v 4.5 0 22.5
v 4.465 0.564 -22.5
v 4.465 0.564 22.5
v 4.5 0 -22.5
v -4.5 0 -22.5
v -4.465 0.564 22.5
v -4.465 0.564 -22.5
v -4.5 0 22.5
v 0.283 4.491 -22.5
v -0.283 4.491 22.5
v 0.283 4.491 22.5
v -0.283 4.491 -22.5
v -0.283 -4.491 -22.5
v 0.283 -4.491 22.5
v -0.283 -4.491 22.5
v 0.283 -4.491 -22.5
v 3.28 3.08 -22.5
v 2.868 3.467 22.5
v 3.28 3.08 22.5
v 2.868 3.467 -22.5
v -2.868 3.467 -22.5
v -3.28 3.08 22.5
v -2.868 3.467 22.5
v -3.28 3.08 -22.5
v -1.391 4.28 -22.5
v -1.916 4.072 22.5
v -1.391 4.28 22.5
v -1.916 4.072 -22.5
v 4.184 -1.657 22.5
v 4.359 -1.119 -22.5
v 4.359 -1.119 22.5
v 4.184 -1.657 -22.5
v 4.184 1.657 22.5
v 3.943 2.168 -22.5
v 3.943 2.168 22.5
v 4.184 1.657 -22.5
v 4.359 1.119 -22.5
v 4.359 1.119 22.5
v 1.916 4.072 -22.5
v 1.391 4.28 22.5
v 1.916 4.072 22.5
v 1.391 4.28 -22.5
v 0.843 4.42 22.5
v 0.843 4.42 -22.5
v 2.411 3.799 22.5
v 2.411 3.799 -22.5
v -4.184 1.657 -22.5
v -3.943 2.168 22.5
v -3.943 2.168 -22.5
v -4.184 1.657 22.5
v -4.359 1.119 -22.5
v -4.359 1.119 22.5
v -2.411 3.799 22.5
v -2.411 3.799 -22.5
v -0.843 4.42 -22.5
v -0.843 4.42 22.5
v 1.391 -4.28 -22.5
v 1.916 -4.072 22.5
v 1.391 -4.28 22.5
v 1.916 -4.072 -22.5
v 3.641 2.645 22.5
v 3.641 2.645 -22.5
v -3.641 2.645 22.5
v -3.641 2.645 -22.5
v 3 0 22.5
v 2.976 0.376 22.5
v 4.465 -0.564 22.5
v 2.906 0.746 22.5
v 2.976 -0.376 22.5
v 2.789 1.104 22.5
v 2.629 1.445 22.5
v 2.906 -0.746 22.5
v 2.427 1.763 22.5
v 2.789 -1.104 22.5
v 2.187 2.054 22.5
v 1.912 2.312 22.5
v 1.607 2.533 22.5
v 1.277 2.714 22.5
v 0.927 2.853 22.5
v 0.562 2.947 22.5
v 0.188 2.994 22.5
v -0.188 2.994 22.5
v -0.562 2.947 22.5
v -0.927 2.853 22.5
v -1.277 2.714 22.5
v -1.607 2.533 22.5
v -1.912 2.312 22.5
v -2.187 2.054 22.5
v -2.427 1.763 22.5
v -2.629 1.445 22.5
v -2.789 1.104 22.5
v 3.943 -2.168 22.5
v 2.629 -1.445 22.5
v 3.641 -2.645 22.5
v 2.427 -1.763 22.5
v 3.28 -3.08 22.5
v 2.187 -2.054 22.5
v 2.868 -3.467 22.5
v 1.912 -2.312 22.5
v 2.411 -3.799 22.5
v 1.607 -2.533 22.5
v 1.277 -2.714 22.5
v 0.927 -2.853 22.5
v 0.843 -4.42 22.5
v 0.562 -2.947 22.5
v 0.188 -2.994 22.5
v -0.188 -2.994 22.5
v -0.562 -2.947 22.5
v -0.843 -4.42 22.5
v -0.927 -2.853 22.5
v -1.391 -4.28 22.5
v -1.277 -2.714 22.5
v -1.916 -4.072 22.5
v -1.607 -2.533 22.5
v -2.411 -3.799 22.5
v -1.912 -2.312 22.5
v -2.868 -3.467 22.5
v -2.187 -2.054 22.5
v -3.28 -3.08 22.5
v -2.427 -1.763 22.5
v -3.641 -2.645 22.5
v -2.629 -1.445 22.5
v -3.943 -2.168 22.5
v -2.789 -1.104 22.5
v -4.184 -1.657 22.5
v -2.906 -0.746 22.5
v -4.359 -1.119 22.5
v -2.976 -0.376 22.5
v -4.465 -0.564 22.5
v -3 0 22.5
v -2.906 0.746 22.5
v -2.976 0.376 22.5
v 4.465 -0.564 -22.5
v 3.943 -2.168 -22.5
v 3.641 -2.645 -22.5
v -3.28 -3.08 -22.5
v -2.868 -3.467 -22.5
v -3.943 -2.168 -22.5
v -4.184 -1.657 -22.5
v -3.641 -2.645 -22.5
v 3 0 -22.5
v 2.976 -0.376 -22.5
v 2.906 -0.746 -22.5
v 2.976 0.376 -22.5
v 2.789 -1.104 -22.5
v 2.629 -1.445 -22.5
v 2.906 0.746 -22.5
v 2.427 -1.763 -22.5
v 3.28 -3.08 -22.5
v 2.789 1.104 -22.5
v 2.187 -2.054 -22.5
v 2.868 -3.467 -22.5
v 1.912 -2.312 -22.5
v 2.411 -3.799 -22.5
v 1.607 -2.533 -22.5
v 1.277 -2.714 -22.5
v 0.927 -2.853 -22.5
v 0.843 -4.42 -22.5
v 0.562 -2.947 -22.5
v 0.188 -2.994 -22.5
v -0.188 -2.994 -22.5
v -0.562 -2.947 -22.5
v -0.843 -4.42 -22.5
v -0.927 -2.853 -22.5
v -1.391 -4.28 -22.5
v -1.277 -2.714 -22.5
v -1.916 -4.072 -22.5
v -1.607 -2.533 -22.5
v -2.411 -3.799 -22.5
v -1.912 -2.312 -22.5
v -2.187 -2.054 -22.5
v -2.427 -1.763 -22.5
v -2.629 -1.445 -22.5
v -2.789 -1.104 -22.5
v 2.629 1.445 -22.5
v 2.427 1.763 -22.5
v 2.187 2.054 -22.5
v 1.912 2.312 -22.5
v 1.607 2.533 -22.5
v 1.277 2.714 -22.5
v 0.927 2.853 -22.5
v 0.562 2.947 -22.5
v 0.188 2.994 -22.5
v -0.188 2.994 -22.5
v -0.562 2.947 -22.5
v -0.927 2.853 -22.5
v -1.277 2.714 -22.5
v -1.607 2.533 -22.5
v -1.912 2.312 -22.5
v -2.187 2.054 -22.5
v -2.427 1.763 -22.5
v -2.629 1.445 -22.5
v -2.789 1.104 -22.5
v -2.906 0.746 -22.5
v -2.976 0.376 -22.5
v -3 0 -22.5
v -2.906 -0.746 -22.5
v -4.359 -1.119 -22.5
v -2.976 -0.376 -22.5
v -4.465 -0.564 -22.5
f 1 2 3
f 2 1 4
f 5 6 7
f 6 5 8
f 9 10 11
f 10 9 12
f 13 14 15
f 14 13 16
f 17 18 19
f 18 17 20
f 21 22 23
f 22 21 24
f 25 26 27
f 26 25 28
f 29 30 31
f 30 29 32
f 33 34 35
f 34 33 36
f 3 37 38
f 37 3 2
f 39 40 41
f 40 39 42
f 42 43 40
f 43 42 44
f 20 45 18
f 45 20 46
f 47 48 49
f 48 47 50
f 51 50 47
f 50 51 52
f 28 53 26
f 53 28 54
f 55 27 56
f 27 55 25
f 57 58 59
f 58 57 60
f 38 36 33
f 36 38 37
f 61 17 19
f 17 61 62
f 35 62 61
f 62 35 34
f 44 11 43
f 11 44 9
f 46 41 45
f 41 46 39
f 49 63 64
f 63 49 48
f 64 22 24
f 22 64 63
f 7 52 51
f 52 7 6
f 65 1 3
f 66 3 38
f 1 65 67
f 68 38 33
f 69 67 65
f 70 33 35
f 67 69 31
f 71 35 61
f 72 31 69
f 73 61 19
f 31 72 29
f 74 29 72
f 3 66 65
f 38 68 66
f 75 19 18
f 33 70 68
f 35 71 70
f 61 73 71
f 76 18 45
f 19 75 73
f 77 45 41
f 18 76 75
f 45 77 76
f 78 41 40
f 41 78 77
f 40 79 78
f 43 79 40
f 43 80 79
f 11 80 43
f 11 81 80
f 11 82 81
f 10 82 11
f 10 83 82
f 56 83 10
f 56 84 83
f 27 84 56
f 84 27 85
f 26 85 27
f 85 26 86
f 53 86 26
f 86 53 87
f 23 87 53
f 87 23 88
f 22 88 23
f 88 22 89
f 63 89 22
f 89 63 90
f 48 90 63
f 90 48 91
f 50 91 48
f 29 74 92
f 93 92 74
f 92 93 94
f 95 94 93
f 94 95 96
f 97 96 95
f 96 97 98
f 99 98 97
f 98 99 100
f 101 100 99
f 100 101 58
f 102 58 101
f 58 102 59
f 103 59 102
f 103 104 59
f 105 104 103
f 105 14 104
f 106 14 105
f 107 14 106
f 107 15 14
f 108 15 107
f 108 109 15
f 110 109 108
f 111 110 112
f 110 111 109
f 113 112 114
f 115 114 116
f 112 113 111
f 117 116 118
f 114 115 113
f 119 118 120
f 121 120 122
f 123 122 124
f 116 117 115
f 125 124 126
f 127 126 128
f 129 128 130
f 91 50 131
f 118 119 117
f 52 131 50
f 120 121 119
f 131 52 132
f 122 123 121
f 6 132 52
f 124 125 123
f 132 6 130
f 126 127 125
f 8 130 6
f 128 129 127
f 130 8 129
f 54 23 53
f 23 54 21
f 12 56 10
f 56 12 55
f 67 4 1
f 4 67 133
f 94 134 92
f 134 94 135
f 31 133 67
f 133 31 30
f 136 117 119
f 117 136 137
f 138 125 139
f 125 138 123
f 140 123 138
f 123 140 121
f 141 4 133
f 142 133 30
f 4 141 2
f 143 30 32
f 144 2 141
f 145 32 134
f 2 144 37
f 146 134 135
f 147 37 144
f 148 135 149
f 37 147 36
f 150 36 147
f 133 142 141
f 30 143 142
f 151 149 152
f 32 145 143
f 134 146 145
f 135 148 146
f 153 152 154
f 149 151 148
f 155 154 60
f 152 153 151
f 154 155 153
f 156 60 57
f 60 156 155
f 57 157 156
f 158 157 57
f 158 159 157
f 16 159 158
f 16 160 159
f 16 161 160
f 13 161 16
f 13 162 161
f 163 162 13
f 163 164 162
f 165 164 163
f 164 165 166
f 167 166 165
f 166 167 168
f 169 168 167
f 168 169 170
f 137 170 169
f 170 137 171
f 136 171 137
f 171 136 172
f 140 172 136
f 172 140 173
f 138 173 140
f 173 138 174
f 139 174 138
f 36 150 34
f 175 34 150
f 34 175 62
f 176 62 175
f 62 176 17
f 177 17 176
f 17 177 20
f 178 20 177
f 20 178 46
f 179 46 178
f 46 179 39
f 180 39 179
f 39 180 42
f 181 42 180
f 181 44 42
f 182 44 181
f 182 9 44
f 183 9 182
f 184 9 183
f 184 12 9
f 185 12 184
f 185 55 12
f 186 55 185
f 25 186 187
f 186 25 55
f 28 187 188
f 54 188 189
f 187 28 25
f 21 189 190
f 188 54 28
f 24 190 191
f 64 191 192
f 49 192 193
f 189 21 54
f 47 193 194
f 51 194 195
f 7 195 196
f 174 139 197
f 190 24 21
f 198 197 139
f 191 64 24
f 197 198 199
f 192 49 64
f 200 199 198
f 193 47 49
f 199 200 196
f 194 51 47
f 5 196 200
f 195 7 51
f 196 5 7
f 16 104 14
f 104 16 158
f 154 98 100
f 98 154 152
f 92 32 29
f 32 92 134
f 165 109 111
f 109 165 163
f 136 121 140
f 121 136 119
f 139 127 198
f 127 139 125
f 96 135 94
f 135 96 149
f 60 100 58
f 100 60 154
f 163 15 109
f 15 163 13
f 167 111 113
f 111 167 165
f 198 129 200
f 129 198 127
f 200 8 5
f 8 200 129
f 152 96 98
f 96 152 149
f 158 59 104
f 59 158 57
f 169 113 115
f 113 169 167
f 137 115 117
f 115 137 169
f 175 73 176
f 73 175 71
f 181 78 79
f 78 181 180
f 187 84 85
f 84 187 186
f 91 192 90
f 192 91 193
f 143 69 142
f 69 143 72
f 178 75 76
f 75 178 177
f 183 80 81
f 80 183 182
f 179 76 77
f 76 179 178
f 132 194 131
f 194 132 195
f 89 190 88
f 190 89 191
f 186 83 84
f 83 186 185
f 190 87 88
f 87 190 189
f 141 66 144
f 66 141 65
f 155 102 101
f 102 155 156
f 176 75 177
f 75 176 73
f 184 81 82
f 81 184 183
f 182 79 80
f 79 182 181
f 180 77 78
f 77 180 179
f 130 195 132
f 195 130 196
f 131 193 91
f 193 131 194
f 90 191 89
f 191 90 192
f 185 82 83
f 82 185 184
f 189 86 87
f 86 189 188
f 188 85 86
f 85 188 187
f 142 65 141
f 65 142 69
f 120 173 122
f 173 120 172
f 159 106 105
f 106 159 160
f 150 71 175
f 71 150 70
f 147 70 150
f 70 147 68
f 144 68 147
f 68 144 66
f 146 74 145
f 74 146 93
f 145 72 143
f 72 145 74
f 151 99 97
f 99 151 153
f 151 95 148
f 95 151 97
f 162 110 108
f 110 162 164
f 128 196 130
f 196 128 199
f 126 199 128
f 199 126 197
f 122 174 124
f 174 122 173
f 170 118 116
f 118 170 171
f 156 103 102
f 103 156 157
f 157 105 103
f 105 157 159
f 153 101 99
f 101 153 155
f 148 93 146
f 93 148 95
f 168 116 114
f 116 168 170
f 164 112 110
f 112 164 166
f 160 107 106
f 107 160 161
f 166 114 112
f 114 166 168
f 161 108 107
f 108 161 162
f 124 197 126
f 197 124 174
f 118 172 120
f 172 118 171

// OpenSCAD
$fn = 50;


difference() {
	union() {
		translate(v = [0, 0, -22.5000000000]) {
			cylinder(h = 45, r = 4.5000000000);
		}
	}
	union() {
		translate(v = [0, 0, -100.0000000000]) {
			cylinder(h = 200, r = 3);
		}
	}
}
